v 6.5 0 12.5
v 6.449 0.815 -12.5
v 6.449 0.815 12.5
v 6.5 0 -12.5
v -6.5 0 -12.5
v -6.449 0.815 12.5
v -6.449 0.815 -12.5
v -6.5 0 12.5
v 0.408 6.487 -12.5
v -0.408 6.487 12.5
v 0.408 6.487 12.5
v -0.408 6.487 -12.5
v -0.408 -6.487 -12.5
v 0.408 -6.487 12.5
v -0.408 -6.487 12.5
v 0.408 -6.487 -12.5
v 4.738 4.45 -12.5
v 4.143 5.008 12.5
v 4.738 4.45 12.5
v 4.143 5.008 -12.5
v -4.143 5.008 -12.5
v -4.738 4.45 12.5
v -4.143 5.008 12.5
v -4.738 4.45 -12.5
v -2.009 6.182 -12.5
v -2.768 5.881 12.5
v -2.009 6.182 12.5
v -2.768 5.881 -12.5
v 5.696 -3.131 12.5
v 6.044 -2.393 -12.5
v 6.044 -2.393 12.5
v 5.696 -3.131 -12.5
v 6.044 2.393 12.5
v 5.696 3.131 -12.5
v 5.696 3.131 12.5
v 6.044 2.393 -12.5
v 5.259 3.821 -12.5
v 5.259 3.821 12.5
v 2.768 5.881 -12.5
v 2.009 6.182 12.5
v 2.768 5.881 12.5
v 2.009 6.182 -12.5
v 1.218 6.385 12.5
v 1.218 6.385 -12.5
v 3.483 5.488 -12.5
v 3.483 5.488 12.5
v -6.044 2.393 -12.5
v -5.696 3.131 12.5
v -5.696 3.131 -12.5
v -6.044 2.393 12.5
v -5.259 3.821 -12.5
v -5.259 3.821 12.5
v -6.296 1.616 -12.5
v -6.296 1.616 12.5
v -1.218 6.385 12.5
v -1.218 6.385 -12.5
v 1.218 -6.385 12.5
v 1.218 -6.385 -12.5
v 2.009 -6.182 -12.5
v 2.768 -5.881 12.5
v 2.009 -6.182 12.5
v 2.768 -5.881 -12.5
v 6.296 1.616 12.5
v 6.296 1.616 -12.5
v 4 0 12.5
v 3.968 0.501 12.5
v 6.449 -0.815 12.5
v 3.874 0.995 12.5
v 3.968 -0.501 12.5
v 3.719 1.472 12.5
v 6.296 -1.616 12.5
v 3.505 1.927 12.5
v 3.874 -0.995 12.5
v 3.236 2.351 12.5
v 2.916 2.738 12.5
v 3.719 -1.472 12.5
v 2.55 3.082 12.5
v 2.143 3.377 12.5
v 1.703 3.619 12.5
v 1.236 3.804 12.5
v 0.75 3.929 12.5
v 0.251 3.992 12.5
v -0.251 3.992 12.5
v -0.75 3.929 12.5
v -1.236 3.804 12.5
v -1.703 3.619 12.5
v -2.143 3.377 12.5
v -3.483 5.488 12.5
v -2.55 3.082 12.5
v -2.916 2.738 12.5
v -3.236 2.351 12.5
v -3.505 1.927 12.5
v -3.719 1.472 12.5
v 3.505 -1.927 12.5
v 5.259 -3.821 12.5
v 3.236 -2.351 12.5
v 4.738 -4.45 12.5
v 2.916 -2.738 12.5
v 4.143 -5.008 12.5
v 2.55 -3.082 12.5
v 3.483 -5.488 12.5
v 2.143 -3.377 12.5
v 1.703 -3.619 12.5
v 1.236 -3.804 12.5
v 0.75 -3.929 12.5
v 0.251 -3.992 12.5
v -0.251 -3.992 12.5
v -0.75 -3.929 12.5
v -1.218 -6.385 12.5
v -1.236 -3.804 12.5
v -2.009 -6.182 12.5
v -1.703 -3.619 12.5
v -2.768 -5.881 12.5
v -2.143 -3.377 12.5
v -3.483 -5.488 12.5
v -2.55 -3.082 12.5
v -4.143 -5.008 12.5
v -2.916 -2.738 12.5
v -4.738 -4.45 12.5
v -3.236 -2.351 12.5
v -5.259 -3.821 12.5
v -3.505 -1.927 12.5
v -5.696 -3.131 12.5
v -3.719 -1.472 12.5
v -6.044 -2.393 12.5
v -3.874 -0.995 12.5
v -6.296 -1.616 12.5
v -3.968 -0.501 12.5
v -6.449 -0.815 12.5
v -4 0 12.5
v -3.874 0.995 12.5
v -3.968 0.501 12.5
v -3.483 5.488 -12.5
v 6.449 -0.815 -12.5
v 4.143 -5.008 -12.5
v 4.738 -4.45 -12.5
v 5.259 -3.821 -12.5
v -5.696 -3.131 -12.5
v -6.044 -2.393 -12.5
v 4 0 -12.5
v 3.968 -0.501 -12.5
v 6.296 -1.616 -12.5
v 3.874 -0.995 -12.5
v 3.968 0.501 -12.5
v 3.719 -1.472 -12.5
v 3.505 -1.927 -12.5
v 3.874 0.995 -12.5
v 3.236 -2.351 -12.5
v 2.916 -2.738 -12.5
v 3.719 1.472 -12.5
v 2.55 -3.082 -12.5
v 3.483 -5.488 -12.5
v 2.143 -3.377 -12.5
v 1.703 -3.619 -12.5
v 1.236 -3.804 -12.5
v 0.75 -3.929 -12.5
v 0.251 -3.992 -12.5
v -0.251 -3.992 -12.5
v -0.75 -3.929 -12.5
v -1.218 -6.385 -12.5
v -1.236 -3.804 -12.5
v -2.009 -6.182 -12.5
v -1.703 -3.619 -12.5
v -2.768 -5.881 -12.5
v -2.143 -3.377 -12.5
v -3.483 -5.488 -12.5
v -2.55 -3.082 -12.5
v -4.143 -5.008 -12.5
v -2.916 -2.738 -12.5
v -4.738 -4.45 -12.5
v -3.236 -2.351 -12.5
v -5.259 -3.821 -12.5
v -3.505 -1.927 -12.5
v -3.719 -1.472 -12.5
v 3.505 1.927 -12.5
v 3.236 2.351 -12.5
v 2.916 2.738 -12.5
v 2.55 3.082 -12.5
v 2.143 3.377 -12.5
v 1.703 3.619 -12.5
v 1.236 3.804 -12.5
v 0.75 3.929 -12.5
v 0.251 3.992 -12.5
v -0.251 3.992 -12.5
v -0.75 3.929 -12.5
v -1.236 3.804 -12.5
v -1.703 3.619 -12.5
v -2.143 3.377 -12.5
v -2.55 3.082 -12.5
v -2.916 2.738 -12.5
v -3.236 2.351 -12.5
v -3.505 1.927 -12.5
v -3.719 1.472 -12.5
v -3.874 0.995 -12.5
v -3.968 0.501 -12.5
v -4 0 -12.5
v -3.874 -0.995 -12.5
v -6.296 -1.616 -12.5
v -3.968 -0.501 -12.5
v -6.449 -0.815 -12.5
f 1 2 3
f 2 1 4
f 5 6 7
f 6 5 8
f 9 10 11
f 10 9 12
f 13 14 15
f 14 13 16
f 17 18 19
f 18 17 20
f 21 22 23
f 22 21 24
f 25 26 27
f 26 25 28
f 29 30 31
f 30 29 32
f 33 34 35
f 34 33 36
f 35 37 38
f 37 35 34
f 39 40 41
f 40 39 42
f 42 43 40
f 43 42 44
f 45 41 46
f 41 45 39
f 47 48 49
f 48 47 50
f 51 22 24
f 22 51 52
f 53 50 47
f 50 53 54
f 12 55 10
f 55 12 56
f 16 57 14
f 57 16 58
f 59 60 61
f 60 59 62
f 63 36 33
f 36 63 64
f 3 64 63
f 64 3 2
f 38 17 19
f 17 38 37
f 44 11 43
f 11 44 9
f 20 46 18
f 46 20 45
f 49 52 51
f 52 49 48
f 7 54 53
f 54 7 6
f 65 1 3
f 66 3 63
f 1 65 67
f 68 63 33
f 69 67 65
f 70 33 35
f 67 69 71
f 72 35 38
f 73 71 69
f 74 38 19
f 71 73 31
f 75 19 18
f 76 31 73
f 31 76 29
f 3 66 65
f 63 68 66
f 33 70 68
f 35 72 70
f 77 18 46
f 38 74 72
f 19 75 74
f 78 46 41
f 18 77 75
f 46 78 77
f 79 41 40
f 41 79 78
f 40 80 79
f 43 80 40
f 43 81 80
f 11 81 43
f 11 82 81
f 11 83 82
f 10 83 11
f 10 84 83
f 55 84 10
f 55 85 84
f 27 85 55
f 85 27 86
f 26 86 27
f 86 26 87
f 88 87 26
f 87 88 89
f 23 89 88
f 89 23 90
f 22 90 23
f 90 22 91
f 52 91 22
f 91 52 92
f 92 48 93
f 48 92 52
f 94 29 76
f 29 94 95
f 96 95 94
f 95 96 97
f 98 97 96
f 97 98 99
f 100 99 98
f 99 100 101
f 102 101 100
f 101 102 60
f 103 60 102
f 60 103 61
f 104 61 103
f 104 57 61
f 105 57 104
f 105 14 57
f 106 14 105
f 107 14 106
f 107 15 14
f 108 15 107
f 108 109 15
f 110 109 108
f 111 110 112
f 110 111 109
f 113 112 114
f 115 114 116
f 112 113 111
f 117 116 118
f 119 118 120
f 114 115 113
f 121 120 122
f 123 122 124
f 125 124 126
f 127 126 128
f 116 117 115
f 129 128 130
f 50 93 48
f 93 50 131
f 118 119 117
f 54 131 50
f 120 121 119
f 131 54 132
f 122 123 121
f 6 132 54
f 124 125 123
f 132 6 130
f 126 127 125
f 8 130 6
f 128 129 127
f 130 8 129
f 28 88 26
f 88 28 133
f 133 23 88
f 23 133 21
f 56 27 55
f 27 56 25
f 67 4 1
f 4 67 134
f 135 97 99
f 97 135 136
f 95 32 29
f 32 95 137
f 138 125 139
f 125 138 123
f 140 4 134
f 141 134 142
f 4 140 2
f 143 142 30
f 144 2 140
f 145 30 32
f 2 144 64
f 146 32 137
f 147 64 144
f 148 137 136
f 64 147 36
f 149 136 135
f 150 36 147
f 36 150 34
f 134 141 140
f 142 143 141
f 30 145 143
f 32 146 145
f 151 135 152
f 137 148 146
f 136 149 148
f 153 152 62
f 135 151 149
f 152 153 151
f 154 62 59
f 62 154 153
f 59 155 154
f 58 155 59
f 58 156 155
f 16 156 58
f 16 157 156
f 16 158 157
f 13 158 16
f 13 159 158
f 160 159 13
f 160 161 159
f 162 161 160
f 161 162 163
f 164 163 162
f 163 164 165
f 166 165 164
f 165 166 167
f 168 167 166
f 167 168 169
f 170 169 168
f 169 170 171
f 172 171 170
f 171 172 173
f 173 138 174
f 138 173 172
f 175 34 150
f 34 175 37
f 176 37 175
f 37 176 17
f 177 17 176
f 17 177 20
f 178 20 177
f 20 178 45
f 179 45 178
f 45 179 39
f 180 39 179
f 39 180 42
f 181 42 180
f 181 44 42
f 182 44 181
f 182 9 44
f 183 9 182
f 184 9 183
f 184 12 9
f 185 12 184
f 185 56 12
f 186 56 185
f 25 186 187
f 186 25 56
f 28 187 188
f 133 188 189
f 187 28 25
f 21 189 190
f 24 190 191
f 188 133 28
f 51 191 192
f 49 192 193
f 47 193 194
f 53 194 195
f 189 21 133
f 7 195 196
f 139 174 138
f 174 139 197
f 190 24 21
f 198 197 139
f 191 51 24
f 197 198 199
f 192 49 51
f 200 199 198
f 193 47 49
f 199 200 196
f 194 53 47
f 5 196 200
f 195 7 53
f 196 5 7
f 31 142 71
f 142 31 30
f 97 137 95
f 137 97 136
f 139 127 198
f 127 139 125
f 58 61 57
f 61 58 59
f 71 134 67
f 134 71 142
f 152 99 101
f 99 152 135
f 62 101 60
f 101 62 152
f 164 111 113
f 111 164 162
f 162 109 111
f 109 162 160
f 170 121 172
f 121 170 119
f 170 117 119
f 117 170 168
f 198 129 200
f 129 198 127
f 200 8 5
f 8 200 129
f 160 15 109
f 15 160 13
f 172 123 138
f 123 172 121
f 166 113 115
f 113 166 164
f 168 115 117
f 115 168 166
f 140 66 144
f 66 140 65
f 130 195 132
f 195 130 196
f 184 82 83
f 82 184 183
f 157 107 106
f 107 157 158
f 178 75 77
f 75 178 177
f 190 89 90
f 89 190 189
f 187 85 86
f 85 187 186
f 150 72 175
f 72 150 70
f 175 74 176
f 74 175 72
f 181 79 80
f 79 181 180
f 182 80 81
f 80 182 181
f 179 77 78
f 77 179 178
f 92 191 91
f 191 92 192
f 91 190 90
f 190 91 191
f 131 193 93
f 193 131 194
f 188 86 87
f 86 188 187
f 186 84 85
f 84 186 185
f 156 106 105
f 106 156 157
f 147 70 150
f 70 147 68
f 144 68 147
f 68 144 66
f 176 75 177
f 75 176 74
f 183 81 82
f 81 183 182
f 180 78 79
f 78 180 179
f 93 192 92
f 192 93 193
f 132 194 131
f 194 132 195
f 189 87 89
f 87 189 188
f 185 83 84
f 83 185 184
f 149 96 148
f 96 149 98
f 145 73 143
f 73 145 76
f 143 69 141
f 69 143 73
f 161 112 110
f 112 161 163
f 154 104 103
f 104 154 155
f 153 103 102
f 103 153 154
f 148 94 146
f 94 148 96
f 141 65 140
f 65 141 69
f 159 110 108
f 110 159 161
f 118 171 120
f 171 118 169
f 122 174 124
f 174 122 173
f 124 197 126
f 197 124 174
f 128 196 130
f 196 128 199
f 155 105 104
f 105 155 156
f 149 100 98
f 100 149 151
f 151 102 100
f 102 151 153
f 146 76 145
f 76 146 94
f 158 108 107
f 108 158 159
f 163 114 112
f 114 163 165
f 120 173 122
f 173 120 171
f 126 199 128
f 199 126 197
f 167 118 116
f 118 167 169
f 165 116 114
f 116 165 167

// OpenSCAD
$fn = 50;


difference() {
	union() {
		translate(v = [0, 0, -12.5000000000]) {
			cylinder(h = 25, r = 6.5000000000);
		}
	}
	union() {
		translate(v = [0, 0, -100.0000000000]) {
			cylinder(h = 200, r = 4);
		}
	}
}
